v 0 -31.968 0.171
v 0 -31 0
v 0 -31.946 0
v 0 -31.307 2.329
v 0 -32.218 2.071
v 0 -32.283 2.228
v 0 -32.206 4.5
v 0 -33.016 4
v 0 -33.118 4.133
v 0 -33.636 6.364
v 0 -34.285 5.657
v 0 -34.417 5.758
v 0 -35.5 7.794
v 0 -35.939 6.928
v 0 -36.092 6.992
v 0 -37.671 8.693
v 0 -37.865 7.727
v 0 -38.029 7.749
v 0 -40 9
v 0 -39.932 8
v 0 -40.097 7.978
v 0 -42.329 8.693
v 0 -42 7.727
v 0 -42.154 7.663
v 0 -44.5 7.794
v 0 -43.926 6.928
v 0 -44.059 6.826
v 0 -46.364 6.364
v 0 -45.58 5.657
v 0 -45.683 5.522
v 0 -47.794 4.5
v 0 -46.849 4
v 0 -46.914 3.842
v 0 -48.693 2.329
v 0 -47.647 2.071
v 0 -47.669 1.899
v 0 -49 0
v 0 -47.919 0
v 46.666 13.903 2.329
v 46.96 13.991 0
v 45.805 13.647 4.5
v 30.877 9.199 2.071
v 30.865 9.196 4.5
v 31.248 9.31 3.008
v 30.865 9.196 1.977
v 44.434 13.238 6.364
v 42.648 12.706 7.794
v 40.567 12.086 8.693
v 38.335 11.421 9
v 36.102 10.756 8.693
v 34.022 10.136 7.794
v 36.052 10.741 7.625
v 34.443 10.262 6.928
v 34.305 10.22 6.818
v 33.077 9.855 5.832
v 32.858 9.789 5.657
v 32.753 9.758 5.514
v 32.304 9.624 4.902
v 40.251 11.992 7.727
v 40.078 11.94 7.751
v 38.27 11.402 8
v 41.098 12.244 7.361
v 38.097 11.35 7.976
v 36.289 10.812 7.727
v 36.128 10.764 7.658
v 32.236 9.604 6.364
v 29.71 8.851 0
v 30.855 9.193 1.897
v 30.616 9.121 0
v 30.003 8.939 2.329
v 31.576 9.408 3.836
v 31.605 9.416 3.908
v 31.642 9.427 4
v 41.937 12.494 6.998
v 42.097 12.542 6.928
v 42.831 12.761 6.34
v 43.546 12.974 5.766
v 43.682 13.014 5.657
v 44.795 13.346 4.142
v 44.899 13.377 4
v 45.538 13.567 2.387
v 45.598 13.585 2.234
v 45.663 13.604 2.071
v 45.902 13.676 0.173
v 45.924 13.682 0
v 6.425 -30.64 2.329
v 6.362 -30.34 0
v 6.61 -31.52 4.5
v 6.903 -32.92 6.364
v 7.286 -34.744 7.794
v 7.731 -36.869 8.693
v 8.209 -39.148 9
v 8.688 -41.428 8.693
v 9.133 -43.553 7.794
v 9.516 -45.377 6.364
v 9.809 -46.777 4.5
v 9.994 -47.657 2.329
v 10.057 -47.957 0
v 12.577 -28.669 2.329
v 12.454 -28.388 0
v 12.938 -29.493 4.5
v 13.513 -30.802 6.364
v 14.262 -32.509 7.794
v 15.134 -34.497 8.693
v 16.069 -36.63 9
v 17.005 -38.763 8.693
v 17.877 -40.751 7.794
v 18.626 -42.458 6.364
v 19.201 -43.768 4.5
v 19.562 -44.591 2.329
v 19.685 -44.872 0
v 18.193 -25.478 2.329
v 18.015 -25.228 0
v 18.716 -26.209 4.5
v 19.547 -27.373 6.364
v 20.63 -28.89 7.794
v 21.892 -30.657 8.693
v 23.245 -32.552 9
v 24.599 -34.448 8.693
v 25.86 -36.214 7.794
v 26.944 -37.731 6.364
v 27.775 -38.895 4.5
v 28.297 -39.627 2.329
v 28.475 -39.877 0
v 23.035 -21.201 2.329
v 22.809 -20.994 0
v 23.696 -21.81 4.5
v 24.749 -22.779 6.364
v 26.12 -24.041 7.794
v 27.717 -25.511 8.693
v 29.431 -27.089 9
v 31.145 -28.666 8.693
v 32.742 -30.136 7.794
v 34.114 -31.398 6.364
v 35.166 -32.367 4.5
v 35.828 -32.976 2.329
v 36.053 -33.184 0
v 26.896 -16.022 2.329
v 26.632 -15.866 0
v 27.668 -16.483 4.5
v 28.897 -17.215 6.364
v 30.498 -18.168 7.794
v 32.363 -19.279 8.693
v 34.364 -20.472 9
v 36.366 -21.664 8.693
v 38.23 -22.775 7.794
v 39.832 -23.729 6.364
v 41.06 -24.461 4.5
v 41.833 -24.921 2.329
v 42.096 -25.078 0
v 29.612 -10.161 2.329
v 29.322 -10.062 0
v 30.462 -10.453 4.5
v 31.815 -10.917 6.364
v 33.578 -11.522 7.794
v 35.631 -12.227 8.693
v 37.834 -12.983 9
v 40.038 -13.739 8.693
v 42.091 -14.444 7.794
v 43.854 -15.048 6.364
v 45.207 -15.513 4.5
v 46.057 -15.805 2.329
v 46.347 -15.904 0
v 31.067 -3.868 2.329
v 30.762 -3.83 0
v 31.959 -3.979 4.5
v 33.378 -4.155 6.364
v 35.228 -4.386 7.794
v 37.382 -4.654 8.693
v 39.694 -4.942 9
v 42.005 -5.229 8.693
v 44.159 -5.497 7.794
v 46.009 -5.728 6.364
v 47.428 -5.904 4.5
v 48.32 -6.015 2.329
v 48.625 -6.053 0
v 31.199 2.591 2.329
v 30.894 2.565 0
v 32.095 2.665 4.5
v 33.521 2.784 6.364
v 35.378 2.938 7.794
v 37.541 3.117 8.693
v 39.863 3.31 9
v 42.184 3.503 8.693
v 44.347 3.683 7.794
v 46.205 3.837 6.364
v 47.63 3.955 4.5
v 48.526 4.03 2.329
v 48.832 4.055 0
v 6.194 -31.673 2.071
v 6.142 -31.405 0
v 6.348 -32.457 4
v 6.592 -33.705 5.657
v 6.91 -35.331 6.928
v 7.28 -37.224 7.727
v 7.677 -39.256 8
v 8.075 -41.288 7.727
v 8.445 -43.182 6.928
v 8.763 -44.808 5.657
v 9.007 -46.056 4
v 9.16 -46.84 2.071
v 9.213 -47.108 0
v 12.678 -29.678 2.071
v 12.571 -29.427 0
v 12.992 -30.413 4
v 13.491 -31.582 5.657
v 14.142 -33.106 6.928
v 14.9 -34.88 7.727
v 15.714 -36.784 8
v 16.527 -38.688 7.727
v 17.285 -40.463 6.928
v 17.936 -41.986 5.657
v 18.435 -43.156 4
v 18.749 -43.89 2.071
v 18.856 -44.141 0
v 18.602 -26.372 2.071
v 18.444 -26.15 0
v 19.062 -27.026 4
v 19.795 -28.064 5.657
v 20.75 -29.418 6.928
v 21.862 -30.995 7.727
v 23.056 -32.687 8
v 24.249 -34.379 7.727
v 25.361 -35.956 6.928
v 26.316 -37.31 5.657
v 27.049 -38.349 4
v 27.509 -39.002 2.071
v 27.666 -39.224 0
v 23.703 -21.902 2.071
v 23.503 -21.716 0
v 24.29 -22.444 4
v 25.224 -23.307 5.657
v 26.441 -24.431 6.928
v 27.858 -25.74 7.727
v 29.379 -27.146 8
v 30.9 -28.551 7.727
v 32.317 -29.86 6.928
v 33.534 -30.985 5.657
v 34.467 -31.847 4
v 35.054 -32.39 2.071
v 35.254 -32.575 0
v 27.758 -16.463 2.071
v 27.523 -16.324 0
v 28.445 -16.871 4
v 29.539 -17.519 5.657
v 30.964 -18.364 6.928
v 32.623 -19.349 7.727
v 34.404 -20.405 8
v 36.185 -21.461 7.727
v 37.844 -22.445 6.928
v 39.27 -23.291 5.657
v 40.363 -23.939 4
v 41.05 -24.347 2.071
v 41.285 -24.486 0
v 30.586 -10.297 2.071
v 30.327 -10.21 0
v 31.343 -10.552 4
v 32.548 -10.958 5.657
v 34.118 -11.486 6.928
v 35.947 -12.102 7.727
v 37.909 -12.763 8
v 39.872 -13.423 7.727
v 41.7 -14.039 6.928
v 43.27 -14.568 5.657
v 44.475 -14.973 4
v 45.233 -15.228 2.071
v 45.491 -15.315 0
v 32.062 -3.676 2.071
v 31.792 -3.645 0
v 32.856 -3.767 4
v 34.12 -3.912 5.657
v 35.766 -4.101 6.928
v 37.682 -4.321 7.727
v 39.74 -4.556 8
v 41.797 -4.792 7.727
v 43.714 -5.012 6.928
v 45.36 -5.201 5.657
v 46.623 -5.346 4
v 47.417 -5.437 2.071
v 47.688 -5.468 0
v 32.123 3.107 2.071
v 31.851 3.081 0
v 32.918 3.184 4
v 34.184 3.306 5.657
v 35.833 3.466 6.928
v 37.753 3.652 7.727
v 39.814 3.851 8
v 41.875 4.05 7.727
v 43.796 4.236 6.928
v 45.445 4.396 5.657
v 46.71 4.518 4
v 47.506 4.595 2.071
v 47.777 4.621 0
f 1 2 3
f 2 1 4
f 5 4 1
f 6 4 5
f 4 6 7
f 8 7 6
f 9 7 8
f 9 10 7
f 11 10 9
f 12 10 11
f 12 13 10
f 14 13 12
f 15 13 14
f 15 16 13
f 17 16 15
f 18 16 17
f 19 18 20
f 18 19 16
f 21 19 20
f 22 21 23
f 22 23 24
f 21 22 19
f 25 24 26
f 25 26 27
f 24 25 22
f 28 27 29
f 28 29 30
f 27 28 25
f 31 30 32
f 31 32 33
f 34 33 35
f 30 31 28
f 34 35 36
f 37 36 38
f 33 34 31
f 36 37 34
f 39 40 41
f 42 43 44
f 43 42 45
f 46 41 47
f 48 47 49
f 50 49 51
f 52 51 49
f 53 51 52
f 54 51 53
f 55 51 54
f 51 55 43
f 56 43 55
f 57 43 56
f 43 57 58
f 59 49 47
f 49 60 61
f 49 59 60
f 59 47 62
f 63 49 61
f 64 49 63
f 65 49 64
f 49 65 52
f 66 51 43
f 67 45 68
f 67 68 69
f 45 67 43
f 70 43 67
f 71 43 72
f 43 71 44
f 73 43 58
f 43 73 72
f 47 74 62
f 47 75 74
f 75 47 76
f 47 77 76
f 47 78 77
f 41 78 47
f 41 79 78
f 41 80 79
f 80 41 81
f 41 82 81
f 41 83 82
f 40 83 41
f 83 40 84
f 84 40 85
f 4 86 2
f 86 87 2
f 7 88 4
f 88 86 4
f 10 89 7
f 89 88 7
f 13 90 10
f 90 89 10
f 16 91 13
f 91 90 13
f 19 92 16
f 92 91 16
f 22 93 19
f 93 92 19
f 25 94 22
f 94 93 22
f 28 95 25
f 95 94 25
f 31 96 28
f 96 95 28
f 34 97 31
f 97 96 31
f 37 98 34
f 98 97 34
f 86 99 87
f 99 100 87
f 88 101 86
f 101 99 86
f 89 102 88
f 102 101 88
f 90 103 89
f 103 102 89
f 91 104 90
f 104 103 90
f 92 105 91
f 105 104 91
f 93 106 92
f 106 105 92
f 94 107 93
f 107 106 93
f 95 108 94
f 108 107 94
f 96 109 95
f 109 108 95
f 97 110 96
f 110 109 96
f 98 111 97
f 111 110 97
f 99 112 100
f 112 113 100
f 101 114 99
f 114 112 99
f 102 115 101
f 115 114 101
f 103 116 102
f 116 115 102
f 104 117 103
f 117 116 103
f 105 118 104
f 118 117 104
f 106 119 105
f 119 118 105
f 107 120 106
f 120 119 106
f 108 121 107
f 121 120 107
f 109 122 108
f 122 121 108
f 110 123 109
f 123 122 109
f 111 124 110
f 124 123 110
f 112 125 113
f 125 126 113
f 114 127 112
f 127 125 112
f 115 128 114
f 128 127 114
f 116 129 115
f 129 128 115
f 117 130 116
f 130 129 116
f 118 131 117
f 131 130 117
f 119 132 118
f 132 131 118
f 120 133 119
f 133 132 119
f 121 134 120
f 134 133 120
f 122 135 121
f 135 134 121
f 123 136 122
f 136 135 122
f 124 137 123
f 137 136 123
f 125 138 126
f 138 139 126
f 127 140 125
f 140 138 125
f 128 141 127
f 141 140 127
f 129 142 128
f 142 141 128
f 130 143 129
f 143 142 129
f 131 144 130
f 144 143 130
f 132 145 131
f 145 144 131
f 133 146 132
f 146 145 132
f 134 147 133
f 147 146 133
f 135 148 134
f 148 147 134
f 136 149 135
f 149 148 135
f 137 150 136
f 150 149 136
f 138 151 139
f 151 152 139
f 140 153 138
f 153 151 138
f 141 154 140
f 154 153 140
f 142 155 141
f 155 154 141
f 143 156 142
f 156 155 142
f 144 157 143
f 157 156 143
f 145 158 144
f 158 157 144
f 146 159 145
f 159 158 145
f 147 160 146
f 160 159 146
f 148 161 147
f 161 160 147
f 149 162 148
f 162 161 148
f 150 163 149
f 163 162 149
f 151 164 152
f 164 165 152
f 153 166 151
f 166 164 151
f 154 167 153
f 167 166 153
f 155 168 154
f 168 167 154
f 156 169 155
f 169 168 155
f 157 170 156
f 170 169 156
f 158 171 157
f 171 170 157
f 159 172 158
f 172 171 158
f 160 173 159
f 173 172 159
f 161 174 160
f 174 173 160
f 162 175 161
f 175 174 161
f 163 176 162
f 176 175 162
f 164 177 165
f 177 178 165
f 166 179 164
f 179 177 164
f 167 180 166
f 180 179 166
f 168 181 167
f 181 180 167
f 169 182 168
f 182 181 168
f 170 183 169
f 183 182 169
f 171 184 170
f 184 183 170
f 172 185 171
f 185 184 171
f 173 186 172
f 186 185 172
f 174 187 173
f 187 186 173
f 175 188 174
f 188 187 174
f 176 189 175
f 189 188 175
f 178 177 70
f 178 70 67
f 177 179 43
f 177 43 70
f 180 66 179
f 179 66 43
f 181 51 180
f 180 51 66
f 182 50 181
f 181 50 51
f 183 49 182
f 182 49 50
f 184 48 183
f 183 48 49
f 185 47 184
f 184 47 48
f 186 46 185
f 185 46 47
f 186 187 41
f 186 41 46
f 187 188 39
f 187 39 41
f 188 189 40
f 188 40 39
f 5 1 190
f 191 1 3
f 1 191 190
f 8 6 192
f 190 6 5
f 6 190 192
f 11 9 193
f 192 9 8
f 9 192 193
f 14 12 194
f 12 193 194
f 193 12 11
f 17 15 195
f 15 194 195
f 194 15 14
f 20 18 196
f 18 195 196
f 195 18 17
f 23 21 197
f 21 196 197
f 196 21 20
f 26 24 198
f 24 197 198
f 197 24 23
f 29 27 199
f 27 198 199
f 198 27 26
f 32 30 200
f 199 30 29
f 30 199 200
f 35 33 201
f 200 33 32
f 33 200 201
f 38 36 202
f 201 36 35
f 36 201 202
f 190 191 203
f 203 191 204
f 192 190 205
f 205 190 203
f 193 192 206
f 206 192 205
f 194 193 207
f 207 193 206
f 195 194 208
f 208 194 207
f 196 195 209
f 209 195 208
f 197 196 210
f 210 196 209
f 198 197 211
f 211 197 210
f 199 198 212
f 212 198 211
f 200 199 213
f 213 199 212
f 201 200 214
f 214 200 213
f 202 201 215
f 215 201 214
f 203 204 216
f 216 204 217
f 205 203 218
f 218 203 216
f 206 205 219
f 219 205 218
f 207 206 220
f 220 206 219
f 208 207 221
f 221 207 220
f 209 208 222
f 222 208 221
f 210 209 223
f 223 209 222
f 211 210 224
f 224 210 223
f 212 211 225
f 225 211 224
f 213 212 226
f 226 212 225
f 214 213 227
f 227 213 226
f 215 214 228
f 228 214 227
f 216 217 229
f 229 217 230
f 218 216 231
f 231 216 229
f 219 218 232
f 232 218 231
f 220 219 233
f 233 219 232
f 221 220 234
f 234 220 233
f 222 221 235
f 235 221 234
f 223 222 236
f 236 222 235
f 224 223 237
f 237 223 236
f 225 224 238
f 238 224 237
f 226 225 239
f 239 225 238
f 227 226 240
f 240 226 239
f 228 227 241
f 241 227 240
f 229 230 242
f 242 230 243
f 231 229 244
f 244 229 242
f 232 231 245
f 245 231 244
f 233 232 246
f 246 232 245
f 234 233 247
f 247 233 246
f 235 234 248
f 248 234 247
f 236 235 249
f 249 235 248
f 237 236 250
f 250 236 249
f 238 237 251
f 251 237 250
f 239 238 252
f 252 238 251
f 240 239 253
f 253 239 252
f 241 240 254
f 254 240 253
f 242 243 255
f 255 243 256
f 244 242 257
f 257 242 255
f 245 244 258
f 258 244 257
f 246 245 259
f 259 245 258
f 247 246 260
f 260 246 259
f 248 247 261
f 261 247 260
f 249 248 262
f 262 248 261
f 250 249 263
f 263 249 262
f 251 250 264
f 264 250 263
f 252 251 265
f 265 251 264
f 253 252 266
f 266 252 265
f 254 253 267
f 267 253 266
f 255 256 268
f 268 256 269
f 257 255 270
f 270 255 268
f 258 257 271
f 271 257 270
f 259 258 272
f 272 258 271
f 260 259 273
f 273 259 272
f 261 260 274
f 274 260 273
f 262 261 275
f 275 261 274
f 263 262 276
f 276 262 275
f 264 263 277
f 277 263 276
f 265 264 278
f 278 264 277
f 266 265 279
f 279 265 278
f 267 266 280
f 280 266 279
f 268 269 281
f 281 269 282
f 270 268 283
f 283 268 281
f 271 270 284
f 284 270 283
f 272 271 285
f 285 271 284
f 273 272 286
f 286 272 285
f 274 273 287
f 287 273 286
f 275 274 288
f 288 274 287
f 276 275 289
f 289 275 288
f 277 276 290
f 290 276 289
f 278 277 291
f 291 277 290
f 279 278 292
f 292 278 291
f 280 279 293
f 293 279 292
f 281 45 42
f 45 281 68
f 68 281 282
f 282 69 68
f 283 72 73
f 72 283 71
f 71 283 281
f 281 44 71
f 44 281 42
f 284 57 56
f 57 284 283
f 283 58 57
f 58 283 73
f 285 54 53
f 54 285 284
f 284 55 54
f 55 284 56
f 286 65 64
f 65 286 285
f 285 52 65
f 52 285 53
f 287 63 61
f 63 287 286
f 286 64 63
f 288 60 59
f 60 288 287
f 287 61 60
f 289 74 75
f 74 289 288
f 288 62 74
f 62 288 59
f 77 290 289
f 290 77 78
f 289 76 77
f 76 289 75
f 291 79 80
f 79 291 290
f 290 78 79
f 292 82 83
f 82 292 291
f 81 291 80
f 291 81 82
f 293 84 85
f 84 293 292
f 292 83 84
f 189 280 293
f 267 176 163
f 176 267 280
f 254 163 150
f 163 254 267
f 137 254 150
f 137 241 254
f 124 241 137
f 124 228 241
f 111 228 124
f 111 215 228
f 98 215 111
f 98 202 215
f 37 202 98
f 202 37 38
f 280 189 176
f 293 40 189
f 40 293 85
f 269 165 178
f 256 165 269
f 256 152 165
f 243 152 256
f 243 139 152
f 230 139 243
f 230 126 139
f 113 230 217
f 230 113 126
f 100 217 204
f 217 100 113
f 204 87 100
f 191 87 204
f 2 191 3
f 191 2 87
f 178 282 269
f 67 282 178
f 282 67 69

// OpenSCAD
// file: ../build_environments.scad
// build_environments.scad: modules to build level sections
//

module pool(diameter=10.0, wall_height=2.0, step_width=3.0, connections=[])
{
    difference() {
        union() {
        difference() {
            cylinder(h=0.5,r1=diameter+step_width,r2=diameter+step_width,$fn=48);
            translate([0,0,-0.1])
                cylinder(h=0.7,r1=diameter,r2=diameter,$fn=48);
        }
        difference() {
            cylinder(h=wall_height,r1=diameter+step_width+1.0,r2=diameter+step_width+1.0,$fn=48);
            translate([0,0,-0.1])
                cylinder(h=wall_height+0.2,r1=diameter+step_width,r2=diameter+step_width,$fn=48);
        }
        }
    
        for (c = connections)
        {
            rotate([0,90,0]) {
                angle = atan2(c[1],c[0]);
                rotate([-angle,0,0]) {
                    cylinder(h=diameter+5.0,r1=c[2],r2=c[2],$fn=48);
                }
            }
        }
    }
}

module straight(length=10.0, width=2.0, dy1=0.0, dy2=0.0, dz=0.0)
{
    dims = [0, 0, 0, 0, 0, (dz/length)];
    matrix = [
        [ 1, dims[0], dims[1], 0 ],
        [ dims[2], 1, dims[4], 0 ],
        [ dims[5], dims[3], 1, 0 ],
        [ 0, 0, 0, 1 ]
    ];
    multmatrix(matrix)
    difference() {
        translate([dy1,0,0])
        union() {
            rotate([0,90,0]) {
                difference() {
                    cylinder(h=(length-dy1-dy2),r1=width+1.0,r2=width+1.0,$fn=24);
                    translate([0,0,-0.1])
                        cylinder(h=(length-dy1-dy2+0.2),r1=width,r2=width,$fn=24);
                }
                difference() {
                    cylinder(h=1.0,r1=width+2.0,r2=width+2.0,$fn=24);
                    translate([0,0,-0.1])
                        cylinder(h=1.2,r1=width,r2=width,$fn=24);
                }
                translate([0,0,(length-dy1-dy2)-1.0]) {
                    difference() {
                        cylinder(h=1.0,r1=width+2.0,r2=width+2.0,$fn=24);
                        translate([0,0,-0.1])
                            cylinder(h=1.2,r1=width,r2=width,$fn=24);
                    }
                }
            }
        }
        translate([0,0,-(2*width+4.0)/2])
            cube([3*length,3*length,2*width+4.0],center=true);
    }
}

module curve(p0=[0,0], center=[0,0], dir=1, angle=0.0, width=2.0)
{
    radius = sqrt((p0[0]-center[0])*(p0[0]-center[0]) + (p0[1]-center[1])*(p0[1]-center[1]));
    if (dir == 0) {
        difference() {
            rotate([0,0,-90])
            difference() {
                rotate_extrude(angle = angle, convexity = 10, $fn=32)
                    translate([radius, 0, 0])
                        circle(r = width+1.0,$fn=24);
                rotate([0,0,-1.0])
                    rotate_extrude(angle = angle+2.0, convexity = 10, $fn=32)
                        translate([radius, 0, 0])
                            circle(r = width,$fn=24);
            }
            translate([0,0,-(2*width+4.0)/2])
                cube([5*radius,5*radius,2*width+4.0],center=true);
        }
    }
    else {
        difference() {
            rotate([0,0,90])
            difference() {
                rotate_extrude(angle = -angle, convexity = 10, $fn=32)
                    translate([radius, 0, 0])
                        circle(r = width+1.0,$fn=24);
                rotate([0,0,1.0])
                    rotate_extrude(angle = -angle-2.0, convexity = 10, $fn=32)
                        translate([radius, 0, 0])
                            circle(r = width,$fn=24);
            }
            translate([0,0,-(2*width+4.0)/2])
                cube([5*radius,5*radius,2*width+4.0],center=true);
        }
    }

}

// test pool
//pool(diameter=12.0000, wall_height=3.0000, step_width=3.0000, connections=[[0.0000,-26.0000,2.0000], [23.6074,0.0000,2.0000]]);

// test straight, slope
//straight(length=26.0000, width=2.0000, dy1=11.8322, dy2=6.7082, dz=0.0000);
//straight(length=29.1549, width=12.0000, dy1=0.0000, dy2=0.0000, dz=-15.0000);

// test curve
//curve(p0=[23.6074, 0.0000], center=[23.6074, 5.0000], dir=0, angle=60.1011, width=2.0000);
//curve(p0=[33.6426, 12.4219], center=[37.9771, 9.9295], dir=1, angle=120.4627, width=2.0000);
// main file
use <../build_environments.scad>;
curve(p0=[365.4400, 71.5138], center=[337.8214, 100.4484], dir=0, angle=106.5904, width=8.0000);
